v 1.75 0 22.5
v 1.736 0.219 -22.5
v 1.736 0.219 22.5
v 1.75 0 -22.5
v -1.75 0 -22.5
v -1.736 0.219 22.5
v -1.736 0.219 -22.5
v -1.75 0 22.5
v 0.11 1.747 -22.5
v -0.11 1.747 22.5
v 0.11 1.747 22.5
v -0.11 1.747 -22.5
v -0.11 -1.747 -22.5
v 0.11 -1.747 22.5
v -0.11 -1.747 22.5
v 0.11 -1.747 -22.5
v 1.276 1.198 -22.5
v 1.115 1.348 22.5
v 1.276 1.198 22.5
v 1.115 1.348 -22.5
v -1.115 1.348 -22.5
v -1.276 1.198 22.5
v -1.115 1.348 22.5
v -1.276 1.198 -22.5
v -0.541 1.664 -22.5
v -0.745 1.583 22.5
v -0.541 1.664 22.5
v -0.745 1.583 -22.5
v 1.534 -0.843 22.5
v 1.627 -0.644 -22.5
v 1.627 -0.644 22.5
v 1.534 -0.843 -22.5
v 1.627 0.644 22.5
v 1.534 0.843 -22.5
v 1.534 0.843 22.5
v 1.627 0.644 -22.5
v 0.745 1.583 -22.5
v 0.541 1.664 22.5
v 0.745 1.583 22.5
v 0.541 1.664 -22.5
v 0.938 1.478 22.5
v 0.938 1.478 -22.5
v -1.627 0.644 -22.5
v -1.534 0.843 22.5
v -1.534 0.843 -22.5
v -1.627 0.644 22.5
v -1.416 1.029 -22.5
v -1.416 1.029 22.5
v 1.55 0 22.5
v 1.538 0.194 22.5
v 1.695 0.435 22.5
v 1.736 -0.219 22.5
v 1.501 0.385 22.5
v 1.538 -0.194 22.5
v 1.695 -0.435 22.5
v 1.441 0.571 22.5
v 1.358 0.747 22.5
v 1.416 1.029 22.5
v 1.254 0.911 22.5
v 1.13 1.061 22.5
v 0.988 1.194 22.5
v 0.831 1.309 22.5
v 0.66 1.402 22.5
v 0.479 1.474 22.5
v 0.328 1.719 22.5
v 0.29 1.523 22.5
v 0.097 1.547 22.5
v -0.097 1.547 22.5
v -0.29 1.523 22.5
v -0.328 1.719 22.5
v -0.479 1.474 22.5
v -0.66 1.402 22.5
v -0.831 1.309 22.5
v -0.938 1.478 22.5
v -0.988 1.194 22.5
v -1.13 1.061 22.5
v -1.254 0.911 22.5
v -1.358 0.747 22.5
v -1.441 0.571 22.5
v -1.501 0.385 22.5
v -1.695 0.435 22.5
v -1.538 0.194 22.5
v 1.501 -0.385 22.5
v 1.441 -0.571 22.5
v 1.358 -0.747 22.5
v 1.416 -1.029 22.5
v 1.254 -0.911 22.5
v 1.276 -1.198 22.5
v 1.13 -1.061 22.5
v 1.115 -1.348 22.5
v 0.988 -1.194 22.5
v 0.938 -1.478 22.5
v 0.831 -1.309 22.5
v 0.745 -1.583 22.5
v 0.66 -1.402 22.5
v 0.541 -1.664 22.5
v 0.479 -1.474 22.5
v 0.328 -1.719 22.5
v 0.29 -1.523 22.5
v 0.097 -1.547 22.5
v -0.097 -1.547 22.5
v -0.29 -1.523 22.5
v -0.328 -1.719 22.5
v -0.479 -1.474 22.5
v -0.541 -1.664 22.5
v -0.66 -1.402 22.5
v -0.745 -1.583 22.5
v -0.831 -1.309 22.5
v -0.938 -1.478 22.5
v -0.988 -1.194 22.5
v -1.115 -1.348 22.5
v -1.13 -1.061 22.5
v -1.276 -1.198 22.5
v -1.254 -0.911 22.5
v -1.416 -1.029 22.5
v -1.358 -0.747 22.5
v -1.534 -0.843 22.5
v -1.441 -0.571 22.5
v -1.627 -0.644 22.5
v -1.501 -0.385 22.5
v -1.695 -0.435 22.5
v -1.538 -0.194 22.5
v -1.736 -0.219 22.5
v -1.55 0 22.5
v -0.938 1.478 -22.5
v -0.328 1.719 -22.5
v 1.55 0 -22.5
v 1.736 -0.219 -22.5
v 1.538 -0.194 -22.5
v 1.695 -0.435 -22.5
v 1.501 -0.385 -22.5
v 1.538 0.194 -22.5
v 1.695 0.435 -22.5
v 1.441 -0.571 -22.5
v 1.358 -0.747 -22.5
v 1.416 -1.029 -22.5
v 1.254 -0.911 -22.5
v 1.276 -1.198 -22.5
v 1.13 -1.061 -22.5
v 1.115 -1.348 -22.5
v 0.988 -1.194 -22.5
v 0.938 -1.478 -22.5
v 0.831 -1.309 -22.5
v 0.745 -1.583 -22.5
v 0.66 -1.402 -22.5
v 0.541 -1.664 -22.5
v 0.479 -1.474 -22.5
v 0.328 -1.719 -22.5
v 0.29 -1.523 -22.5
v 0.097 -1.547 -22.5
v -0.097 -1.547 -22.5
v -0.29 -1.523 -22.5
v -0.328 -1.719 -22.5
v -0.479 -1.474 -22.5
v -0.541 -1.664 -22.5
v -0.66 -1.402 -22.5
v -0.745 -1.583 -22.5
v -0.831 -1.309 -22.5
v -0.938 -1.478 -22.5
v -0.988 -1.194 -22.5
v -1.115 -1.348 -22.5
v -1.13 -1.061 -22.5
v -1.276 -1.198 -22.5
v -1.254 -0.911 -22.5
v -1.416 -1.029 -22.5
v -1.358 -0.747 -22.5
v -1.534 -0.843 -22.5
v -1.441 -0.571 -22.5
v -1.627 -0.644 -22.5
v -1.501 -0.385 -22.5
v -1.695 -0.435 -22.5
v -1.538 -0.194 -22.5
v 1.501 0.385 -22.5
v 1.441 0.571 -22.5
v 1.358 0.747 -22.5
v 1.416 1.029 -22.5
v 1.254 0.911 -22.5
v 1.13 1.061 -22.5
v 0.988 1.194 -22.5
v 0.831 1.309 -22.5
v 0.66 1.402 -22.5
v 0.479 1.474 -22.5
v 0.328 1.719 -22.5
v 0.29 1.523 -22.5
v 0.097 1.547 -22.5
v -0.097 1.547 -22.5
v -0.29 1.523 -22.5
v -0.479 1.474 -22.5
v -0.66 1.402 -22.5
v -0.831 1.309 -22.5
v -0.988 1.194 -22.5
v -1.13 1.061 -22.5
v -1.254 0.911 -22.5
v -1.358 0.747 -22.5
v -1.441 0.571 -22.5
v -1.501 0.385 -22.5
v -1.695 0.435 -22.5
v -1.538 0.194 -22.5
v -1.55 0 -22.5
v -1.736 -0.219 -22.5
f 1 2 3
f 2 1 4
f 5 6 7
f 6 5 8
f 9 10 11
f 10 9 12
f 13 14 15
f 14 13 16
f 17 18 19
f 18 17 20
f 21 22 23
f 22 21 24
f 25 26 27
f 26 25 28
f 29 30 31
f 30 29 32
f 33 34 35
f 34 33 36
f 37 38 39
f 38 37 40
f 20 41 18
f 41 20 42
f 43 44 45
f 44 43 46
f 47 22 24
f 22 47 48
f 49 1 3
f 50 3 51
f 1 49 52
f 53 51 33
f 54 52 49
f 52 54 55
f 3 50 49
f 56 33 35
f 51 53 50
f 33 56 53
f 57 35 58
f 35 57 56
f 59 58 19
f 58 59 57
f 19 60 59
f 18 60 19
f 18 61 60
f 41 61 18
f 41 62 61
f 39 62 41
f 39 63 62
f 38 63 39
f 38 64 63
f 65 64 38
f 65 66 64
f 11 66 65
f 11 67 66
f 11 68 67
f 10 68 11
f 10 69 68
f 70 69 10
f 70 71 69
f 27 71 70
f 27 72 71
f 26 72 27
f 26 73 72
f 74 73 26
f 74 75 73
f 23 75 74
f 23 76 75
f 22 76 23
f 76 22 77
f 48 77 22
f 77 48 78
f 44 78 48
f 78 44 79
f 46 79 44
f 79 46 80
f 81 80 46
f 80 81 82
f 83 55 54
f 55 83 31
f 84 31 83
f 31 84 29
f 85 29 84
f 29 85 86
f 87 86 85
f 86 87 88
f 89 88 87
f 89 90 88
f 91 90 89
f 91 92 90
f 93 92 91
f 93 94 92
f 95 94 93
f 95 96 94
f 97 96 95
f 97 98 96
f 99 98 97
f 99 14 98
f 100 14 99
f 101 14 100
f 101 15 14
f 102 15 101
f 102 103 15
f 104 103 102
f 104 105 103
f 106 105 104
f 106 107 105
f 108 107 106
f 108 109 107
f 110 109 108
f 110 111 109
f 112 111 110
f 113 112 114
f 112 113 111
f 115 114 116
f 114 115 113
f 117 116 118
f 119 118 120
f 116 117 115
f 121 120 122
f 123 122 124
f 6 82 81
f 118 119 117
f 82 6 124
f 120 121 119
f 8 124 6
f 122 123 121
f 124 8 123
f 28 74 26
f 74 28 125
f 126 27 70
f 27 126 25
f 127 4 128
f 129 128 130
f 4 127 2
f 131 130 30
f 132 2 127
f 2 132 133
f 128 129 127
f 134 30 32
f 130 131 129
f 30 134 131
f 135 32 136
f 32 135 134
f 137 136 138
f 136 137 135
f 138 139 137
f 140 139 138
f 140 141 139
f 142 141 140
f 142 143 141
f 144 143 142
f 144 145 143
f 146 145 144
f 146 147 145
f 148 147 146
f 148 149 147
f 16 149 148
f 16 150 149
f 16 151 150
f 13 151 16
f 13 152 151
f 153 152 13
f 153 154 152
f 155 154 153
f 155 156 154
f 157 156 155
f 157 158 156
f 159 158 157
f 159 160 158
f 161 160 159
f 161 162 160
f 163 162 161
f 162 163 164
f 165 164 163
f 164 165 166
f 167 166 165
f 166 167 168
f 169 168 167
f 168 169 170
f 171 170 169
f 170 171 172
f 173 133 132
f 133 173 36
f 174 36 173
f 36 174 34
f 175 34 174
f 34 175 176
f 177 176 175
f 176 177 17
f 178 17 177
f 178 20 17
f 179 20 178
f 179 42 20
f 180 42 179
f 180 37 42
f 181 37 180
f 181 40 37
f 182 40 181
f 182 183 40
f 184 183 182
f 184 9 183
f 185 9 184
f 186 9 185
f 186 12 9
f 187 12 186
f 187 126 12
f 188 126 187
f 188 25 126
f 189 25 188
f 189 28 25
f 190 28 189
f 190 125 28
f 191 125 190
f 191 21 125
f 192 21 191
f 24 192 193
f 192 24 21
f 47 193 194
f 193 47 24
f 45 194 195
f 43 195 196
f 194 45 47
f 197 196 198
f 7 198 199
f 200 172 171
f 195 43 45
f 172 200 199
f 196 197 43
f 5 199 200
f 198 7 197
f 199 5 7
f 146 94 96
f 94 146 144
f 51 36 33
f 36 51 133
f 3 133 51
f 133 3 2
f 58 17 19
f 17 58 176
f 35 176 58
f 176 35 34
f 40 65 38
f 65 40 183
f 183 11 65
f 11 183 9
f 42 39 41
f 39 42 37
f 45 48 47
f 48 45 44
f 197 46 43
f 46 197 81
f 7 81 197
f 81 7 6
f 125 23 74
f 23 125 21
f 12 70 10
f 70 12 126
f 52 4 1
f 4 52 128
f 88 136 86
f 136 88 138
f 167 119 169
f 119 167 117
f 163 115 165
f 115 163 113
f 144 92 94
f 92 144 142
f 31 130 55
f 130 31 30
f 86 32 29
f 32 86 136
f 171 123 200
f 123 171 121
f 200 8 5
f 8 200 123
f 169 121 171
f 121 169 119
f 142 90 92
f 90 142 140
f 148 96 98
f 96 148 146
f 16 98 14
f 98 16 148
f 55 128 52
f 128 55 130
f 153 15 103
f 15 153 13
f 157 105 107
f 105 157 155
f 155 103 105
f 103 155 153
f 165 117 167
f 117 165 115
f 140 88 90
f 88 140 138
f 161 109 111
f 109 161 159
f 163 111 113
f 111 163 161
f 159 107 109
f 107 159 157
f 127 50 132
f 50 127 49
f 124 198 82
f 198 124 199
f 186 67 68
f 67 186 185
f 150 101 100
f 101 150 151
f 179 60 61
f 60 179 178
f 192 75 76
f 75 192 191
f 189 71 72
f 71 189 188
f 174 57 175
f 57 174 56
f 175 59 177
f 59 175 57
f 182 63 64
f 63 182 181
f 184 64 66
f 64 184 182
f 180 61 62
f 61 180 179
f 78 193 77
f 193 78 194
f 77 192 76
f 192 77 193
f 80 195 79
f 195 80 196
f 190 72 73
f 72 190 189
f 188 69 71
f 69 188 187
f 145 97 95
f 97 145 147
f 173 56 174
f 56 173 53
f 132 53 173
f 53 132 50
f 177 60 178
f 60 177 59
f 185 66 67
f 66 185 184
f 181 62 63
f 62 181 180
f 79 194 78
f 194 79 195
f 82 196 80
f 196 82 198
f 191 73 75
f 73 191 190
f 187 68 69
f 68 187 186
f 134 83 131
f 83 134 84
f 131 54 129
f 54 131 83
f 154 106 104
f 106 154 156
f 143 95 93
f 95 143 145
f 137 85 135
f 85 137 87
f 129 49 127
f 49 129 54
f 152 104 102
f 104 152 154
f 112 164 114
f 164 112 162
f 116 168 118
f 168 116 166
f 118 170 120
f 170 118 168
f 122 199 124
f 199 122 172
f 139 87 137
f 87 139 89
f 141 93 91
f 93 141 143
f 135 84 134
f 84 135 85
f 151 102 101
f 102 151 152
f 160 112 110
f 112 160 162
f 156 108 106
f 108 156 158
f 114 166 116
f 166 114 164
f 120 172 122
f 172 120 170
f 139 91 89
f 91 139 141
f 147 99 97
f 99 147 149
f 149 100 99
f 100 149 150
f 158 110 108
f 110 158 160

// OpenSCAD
$fn = 50;


difference() {
	union() {
		translate(v = [0, 0, -22.5000000000]) {
			cylinder(h = 45, r = 1.7500000000);
		}
	}
	union() {
		translate(v = [0, 0, -100.0000000000]) {
			cylinder(h = 200, r = 1.5500000000);
		}
	}
}
